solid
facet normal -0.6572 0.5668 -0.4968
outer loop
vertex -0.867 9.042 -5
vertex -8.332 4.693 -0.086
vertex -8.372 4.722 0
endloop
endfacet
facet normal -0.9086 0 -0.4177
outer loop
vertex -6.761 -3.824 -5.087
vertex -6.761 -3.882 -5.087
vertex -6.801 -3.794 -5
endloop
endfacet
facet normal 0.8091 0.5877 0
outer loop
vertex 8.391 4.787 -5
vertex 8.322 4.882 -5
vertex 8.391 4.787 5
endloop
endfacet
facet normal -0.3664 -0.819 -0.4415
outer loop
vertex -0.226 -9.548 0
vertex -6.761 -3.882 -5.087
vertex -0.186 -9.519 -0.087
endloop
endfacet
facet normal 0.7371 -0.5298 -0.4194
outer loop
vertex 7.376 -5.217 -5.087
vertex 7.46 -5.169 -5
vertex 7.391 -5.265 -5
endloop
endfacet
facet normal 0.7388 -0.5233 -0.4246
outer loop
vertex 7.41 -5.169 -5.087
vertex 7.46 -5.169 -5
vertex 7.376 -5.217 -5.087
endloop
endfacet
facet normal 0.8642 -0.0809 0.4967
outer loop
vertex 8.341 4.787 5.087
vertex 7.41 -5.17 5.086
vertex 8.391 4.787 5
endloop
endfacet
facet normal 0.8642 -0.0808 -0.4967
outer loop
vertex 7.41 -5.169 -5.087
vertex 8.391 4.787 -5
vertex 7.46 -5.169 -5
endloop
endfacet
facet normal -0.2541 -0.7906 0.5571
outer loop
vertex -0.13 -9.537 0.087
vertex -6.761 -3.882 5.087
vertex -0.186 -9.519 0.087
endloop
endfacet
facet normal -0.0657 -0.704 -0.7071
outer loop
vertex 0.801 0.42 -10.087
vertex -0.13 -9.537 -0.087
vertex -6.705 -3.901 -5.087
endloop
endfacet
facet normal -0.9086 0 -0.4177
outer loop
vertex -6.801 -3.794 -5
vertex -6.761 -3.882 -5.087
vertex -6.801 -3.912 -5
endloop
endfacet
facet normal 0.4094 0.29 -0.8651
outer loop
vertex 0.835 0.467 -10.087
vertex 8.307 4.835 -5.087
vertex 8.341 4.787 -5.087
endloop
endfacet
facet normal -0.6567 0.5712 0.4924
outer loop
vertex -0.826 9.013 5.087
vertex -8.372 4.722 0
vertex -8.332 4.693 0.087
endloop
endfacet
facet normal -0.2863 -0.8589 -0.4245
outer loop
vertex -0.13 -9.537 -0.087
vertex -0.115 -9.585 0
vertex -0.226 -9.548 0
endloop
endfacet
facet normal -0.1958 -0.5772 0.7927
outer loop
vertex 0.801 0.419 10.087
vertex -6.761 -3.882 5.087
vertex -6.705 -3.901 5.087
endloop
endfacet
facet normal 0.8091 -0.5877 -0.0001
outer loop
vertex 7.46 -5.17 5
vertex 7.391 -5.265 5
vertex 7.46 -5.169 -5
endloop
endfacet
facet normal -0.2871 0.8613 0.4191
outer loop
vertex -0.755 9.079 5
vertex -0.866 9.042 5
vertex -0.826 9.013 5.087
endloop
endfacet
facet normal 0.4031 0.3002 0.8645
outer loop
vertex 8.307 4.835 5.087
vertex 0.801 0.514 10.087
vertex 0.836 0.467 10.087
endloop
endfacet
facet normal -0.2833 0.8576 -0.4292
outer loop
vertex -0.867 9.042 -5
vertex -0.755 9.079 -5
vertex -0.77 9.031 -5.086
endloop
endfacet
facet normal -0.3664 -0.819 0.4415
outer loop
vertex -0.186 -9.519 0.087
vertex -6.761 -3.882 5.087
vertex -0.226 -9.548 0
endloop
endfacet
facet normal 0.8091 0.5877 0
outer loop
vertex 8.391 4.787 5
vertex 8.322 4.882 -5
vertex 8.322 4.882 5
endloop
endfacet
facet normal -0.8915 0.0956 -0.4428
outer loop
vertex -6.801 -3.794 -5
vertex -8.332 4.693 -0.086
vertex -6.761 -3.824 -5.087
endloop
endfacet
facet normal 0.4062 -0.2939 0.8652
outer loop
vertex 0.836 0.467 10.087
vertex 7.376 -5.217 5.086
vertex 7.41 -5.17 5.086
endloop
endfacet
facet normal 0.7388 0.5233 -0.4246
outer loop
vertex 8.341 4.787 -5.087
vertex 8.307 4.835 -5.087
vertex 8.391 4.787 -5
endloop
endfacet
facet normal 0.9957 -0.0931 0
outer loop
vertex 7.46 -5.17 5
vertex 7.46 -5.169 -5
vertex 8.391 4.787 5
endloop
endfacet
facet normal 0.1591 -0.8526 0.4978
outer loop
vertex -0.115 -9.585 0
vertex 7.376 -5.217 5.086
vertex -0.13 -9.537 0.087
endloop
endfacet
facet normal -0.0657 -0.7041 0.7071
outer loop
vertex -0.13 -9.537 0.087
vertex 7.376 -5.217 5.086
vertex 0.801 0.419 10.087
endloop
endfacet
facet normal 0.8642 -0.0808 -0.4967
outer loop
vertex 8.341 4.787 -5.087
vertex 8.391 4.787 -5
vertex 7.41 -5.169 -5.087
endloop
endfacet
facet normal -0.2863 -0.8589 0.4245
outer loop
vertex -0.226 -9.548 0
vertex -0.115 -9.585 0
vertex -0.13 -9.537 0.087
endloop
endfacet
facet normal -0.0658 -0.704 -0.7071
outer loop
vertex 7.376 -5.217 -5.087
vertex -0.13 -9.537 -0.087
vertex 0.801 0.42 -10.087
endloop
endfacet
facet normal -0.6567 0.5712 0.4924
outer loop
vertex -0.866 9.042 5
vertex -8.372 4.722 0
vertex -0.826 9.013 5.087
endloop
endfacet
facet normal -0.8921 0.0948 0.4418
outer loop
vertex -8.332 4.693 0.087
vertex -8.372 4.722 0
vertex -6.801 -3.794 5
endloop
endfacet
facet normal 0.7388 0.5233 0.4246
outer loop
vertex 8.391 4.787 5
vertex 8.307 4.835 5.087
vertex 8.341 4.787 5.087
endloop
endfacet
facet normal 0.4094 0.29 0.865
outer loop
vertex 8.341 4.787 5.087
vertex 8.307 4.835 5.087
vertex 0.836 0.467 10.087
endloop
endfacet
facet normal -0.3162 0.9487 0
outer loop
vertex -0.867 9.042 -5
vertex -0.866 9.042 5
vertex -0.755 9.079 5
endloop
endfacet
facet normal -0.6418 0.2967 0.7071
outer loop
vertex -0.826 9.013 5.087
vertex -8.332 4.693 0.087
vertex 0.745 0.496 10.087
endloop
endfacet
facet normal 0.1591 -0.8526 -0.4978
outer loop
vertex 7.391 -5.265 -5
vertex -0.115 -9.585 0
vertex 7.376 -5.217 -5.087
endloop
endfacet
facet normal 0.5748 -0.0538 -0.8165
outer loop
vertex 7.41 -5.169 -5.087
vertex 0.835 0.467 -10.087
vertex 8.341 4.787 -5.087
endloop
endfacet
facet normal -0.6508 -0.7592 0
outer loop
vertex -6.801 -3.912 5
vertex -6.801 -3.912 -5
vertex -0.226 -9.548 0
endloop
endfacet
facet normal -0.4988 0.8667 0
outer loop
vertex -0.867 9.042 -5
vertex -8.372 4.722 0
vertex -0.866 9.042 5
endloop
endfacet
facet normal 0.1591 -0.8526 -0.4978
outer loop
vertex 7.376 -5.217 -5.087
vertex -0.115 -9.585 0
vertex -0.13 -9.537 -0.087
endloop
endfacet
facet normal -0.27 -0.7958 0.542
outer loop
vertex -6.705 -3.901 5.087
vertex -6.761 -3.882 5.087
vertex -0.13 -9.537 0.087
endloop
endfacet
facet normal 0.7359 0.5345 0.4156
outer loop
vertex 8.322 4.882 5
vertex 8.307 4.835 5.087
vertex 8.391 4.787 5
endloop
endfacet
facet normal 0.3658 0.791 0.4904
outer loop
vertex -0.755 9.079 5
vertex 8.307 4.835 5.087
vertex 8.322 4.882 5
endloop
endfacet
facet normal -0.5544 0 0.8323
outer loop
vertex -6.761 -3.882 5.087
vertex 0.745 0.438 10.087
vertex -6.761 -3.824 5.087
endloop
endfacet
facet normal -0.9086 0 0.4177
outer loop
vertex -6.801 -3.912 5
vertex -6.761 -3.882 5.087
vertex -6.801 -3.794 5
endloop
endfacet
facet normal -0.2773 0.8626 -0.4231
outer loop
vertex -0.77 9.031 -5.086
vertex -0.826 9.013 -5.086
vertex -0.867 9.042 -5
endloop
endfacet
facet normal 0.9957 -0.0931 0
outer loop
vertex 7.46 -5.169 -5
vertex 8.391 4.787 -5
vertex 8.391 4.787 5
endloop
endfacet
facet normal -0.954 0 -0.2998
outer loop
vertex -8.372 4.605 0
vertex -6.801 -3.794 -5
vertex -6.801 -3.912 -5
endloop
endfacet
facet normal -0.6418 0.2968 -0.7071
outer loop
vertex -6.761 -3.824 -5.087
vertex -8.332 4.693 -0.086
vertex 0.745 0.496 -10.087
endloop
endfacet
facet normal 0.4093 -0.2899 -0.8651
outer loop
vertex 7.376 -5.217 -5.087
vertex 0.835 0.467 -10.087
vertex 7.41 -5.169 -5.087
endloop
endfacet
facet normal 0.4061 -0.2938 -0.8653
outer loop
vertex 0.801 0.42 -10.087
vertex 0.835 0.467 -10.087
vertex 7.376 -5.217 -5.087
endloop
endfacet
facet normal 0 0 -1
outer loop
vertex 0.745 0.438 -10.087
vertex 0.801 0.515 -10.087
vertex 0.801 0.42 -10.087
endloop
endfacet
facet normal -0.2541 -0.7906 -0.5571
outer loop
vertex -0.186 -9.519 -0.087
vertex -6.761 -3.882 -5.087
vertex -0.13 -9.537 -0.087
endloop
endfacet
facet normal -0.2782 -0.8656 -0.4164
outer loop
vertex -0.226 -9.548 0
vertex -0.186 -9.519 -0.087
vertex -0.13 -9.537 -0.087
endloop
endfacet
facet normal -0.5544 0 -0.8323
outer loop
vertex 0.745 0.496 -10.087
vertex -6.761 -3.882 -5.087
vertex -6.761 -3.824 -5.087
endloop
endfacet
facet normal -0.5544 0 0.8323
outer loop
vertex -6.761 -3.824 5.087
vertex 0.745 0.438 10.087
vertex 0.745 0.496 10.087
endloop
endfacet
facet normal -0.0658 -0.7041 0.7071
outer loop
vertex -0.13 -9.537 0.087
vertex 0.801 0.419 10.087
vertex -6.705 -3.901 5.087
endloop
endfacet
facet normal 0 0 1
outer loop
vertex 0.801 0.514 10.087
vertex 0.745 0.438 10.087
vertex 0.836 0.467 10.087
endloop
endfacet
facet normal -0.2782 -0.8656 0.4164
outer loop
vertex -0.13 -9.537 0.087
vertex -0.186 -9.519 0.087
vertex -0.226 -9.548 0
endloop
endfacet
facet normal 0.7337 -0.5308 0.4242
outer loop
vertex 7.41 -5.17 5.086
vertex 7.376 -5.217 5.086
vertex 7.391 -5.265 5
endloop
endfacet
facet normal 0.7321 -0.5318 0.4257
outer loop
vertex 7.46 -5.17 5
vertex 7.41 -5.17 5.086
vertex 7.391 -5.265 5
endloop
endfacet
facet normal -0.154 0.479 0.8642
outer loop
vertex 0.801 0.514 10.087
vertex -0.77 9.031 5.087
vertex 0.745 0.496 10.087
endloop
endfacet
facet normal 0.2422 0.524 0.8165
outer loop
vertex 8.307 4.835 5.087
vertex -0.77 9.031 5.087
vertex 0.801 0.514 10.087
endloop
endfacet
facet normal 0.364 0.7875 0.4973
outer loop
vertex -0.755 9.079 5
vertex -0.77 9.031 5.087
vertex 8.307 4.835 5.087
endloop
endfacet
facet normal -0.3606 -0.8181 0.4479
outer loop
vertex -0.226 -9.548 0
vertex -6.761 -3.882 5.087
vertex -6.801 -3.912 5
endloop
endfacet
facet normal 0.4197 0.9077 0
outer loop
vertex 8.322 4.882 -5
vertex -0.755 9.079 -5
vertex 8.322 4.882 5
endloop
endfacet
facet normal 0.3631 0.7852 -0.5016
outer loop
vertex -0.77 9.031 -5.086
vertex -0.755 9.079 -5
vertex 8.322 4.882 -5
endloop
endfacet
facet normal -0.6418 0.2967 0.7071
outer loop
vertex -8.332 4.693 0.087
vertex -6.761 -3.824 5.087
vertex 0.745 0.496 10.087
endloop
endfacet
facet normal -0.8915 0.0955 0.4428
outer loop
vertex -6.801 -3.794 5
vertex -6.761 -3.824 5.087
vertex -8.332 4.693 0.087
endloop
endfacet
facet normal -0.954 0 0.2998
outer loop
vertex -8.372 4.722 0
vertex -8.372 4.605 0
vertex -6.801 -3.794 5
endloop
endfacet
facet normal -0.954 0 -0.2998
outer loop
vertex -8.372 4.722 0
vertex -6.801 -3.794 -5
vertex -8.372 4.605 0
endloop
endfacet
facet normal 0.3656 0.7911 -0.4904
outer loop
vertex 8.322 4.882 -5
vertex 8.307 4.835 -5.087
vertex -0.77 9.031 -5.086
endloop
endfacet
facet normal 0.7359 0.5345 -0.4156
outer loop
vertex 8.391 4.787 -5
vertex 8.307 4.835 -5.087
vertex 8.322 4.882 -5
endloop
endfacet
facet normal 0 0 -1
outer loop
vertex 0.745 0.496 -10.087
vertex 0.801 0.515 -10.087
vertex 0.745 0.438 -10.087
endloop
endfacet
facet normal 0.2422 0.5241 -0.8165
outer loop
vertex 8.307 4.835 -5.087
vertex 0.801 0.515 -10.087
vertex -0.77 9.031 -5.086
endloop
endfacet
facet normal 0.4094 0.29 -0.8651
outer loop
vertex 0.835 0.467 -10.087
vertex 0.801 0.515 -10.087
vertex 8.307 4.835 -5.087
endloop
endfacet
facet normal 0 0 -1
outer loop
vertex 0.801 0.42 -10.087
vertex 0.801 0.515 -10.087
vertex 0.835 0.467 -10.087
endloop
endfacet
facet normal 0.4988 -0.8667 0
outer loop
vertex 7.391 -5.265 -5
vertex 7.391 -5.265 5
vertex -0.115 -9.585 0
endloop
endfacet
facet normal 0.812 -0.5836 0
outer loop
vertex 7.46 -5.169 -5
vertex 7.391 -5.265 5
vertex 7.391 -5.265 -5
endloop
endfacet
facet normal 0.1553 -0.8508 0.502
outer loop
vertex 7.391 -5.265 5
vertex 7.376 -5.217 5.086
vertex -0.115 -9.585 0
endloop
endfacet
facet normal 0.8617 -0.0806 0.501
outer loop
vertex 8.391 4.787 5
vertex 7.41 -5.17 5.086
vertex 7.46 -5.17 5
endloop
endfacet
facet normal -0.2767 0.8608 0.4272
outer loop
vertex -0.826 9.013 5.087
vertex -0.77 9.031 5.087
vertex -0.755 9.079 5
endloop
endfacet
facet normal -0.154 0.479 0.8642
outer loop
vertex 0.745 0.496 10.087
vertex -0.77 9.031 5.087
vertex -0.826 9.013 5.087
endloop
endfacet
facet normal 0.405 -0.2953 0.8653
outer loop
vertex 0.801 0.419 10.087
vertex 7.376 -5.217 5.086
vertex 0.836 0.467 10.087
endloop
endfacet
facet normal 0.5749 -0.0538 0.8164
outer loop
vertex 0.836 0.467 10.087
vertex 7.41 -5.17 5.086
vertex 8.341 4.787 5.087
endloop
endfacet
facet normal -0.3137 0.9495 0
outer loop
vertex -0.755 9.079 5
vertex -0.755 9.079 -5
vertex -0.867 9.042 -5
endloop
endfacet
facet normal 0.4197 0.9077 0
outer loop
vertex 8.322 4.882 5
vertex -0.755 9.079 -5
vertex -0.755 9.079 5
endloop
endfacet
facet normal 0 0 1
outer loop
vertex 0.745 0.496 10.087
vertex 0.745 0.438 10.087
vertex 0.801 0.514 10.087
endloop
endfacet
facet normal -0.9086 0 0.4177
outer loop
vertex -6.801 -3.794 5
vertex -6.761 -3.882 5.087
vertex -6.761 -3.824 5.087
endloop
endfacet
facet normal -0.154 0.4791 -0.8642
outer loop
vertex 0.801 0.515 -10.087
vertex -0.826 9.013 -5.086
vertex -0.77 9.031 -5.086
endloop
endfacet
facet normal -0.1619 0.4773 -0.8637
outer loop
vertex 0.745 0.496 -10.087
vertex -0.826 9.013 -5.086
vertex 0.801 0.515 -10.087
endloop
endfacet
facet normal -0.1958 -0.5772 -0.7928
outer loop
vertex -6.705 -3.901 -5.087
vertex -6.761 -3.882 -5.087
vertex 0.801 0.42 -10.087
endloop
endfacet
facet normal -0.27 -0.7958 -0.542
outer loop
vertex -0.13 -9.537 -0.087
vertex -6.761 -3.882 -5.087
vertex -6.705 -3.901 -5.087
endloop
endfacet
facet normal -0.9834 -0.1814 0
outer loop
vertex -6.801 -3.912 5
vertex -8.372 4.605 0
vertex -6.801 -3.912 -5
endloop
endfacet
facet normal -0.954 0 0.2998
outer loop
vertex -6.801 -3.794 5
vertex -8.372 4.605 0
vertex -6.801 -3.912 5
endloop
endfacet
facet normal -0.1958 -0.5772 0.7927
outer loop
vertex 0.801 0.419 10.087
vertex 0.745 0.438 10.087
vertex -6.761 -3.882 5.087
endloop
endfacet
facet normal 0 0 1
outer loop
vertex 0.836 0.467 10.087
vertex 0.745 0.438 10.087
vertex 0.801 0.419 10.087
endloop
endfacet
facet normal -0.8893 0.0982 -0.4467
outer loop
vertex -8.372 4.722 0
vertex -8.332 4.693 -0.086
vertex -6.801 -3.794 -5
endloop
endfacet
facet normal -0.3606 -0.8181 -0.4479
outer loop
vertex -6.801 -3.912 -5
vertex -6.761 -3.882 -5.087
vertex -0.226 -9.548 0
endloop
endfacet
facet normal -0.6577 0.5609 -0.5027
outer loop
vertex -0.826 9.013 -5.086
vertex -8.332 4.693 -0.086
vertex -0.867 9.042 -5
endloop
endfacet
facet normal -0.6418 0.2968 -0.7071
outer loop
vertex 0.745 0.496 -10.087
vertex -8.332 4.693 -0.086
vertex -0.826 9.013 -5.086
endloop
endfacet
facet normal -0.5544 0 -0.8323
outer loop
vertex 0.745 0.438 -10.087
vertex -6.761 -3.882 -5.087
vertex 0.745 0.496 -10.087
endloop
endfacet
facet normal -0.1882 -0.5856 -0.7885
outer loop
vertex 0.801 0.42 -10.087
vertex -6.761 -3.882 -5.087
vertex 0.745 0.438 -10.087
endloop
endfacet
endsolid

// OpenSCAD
// Auto-generated OpenSCAD file

    inner_points = 10*[[-0.8291415458319079, 0.4663499702585989, 2.058495952064754e-05], [-0.07855180895714171, 0.8983503547280824, 0.5000112995897901], [-0.078569895871595, 0.898360286145608, -0.4999887001973251], [0.7360452910153114, -0.5169581736692761, 0.4999825100217997], [-0.6720275168609681, -0.3853110430415919, 0.5000092851568458], [0.8291157830596579, 0.4787095887324264, -0.5000092851568458], [-0.014544445859454913, -0.9489585581387598, -8.204608469786212e-06], [0.07856222001379826, 0.04668934142789162, 0.9999999997871154], [0.07852604618489165, 0.046709204262942824, -0.9999999997871154], [0.7360272041008581, -0.5169482422517505, -0.5000174897653156], [-0.6720456037754214, -0.38530111162406633, -0.4999907146302695], [0.8291338699741113, 0.47869965731490083, 0.4999907146302695]];

    outer_points = 10*[[-0.2886740751691849, -0.49999976883649444, -0.8164970970485246], [-0.2886739150147398, 0.500000231163467, -0.8164968705552657], [0.5773514086916217, 9.246539450780134e-08, -0.8164957751769395], [-0.2886761940198712, 0.49999986130188906, 0.8164962912985543], [-0.8660254838608068, -0.49999986130188906, -1.3218715850804585e-06], [0.8660254838608068, 0.49999986130188906, 1.3218715850804585e-06], [-0.2886763541743163, -0.5000001386980726, 0.8164960648052954], [-0.8660253237063618, 0.5000001386980726, -1.0953783261546945e-06], [0.8660253237063618, -0.5000001386980726, 1.0953783261546945e-06], [0.5773491296864904, -2.77396183523404e-07, 0.8164973866768803], [-1.6015444513559745e-07, -0.9999999999999616, -2.2649325892100838e-07], [1.6015444513559745e-07, 0.9999999999999616, 2.2649325892100838e-07]];

    // Convex hull for inner set (I)
    module inner_hull() {
        hull() {
            for (p = inner_points) {
                translate(p) sphere(r=0.1);
            }
        }
    }

    // Convex hull for outer set (O) minus inner hull (O \ I)
    module outer_minus_inner() {
        difference() {
            hull() {
                for (p = outer_points) {
                    translate(p) sphere(r=0.1);
                }
            }
            inner_hull(); // Subtract inner hull
        }
    }

    // Convex hull for outer set (O) minus all translated inner hulls
    module outer_minus_AllTranslationInner() {
        difference() {
            hull() {
                for (p = outer_points) {
                    translate(p) sphere(r=0.1);
                }
            }
            hull() {
                translate([0,0,50]) inner_hull();
                translate([0,0,-50]) inner_hull();
            }; // Subtract translated inner hulls
        }
    }

    // Difference between outer_minus_inner and outer_minus_AllTranslationInner
    module outer_minus_inner_diff() {
        difference() {
            // Outer minus inner
            difference() {
                hull() {
                    for (p = outer_points) {
                        translate(p) sphere(r=0.1);
                    }
                }
                inner_hull();
            }

            // Subtract Outer minus AllTranslationInner
            difference() {
                hull() {
                    for (p = outer_points) {
                        translate(p) sphere(r=0.1);
                    }
                }
                hull() {
                    translate([0,0,50]) inner_hull();
                    translate([0,0,-50]) inner_hull();
                };
            }
        }
    }

    // Rendering all with colors applied
    color([1, 0, 0, 0.5]) inner_hull(); // Transparent red
    
